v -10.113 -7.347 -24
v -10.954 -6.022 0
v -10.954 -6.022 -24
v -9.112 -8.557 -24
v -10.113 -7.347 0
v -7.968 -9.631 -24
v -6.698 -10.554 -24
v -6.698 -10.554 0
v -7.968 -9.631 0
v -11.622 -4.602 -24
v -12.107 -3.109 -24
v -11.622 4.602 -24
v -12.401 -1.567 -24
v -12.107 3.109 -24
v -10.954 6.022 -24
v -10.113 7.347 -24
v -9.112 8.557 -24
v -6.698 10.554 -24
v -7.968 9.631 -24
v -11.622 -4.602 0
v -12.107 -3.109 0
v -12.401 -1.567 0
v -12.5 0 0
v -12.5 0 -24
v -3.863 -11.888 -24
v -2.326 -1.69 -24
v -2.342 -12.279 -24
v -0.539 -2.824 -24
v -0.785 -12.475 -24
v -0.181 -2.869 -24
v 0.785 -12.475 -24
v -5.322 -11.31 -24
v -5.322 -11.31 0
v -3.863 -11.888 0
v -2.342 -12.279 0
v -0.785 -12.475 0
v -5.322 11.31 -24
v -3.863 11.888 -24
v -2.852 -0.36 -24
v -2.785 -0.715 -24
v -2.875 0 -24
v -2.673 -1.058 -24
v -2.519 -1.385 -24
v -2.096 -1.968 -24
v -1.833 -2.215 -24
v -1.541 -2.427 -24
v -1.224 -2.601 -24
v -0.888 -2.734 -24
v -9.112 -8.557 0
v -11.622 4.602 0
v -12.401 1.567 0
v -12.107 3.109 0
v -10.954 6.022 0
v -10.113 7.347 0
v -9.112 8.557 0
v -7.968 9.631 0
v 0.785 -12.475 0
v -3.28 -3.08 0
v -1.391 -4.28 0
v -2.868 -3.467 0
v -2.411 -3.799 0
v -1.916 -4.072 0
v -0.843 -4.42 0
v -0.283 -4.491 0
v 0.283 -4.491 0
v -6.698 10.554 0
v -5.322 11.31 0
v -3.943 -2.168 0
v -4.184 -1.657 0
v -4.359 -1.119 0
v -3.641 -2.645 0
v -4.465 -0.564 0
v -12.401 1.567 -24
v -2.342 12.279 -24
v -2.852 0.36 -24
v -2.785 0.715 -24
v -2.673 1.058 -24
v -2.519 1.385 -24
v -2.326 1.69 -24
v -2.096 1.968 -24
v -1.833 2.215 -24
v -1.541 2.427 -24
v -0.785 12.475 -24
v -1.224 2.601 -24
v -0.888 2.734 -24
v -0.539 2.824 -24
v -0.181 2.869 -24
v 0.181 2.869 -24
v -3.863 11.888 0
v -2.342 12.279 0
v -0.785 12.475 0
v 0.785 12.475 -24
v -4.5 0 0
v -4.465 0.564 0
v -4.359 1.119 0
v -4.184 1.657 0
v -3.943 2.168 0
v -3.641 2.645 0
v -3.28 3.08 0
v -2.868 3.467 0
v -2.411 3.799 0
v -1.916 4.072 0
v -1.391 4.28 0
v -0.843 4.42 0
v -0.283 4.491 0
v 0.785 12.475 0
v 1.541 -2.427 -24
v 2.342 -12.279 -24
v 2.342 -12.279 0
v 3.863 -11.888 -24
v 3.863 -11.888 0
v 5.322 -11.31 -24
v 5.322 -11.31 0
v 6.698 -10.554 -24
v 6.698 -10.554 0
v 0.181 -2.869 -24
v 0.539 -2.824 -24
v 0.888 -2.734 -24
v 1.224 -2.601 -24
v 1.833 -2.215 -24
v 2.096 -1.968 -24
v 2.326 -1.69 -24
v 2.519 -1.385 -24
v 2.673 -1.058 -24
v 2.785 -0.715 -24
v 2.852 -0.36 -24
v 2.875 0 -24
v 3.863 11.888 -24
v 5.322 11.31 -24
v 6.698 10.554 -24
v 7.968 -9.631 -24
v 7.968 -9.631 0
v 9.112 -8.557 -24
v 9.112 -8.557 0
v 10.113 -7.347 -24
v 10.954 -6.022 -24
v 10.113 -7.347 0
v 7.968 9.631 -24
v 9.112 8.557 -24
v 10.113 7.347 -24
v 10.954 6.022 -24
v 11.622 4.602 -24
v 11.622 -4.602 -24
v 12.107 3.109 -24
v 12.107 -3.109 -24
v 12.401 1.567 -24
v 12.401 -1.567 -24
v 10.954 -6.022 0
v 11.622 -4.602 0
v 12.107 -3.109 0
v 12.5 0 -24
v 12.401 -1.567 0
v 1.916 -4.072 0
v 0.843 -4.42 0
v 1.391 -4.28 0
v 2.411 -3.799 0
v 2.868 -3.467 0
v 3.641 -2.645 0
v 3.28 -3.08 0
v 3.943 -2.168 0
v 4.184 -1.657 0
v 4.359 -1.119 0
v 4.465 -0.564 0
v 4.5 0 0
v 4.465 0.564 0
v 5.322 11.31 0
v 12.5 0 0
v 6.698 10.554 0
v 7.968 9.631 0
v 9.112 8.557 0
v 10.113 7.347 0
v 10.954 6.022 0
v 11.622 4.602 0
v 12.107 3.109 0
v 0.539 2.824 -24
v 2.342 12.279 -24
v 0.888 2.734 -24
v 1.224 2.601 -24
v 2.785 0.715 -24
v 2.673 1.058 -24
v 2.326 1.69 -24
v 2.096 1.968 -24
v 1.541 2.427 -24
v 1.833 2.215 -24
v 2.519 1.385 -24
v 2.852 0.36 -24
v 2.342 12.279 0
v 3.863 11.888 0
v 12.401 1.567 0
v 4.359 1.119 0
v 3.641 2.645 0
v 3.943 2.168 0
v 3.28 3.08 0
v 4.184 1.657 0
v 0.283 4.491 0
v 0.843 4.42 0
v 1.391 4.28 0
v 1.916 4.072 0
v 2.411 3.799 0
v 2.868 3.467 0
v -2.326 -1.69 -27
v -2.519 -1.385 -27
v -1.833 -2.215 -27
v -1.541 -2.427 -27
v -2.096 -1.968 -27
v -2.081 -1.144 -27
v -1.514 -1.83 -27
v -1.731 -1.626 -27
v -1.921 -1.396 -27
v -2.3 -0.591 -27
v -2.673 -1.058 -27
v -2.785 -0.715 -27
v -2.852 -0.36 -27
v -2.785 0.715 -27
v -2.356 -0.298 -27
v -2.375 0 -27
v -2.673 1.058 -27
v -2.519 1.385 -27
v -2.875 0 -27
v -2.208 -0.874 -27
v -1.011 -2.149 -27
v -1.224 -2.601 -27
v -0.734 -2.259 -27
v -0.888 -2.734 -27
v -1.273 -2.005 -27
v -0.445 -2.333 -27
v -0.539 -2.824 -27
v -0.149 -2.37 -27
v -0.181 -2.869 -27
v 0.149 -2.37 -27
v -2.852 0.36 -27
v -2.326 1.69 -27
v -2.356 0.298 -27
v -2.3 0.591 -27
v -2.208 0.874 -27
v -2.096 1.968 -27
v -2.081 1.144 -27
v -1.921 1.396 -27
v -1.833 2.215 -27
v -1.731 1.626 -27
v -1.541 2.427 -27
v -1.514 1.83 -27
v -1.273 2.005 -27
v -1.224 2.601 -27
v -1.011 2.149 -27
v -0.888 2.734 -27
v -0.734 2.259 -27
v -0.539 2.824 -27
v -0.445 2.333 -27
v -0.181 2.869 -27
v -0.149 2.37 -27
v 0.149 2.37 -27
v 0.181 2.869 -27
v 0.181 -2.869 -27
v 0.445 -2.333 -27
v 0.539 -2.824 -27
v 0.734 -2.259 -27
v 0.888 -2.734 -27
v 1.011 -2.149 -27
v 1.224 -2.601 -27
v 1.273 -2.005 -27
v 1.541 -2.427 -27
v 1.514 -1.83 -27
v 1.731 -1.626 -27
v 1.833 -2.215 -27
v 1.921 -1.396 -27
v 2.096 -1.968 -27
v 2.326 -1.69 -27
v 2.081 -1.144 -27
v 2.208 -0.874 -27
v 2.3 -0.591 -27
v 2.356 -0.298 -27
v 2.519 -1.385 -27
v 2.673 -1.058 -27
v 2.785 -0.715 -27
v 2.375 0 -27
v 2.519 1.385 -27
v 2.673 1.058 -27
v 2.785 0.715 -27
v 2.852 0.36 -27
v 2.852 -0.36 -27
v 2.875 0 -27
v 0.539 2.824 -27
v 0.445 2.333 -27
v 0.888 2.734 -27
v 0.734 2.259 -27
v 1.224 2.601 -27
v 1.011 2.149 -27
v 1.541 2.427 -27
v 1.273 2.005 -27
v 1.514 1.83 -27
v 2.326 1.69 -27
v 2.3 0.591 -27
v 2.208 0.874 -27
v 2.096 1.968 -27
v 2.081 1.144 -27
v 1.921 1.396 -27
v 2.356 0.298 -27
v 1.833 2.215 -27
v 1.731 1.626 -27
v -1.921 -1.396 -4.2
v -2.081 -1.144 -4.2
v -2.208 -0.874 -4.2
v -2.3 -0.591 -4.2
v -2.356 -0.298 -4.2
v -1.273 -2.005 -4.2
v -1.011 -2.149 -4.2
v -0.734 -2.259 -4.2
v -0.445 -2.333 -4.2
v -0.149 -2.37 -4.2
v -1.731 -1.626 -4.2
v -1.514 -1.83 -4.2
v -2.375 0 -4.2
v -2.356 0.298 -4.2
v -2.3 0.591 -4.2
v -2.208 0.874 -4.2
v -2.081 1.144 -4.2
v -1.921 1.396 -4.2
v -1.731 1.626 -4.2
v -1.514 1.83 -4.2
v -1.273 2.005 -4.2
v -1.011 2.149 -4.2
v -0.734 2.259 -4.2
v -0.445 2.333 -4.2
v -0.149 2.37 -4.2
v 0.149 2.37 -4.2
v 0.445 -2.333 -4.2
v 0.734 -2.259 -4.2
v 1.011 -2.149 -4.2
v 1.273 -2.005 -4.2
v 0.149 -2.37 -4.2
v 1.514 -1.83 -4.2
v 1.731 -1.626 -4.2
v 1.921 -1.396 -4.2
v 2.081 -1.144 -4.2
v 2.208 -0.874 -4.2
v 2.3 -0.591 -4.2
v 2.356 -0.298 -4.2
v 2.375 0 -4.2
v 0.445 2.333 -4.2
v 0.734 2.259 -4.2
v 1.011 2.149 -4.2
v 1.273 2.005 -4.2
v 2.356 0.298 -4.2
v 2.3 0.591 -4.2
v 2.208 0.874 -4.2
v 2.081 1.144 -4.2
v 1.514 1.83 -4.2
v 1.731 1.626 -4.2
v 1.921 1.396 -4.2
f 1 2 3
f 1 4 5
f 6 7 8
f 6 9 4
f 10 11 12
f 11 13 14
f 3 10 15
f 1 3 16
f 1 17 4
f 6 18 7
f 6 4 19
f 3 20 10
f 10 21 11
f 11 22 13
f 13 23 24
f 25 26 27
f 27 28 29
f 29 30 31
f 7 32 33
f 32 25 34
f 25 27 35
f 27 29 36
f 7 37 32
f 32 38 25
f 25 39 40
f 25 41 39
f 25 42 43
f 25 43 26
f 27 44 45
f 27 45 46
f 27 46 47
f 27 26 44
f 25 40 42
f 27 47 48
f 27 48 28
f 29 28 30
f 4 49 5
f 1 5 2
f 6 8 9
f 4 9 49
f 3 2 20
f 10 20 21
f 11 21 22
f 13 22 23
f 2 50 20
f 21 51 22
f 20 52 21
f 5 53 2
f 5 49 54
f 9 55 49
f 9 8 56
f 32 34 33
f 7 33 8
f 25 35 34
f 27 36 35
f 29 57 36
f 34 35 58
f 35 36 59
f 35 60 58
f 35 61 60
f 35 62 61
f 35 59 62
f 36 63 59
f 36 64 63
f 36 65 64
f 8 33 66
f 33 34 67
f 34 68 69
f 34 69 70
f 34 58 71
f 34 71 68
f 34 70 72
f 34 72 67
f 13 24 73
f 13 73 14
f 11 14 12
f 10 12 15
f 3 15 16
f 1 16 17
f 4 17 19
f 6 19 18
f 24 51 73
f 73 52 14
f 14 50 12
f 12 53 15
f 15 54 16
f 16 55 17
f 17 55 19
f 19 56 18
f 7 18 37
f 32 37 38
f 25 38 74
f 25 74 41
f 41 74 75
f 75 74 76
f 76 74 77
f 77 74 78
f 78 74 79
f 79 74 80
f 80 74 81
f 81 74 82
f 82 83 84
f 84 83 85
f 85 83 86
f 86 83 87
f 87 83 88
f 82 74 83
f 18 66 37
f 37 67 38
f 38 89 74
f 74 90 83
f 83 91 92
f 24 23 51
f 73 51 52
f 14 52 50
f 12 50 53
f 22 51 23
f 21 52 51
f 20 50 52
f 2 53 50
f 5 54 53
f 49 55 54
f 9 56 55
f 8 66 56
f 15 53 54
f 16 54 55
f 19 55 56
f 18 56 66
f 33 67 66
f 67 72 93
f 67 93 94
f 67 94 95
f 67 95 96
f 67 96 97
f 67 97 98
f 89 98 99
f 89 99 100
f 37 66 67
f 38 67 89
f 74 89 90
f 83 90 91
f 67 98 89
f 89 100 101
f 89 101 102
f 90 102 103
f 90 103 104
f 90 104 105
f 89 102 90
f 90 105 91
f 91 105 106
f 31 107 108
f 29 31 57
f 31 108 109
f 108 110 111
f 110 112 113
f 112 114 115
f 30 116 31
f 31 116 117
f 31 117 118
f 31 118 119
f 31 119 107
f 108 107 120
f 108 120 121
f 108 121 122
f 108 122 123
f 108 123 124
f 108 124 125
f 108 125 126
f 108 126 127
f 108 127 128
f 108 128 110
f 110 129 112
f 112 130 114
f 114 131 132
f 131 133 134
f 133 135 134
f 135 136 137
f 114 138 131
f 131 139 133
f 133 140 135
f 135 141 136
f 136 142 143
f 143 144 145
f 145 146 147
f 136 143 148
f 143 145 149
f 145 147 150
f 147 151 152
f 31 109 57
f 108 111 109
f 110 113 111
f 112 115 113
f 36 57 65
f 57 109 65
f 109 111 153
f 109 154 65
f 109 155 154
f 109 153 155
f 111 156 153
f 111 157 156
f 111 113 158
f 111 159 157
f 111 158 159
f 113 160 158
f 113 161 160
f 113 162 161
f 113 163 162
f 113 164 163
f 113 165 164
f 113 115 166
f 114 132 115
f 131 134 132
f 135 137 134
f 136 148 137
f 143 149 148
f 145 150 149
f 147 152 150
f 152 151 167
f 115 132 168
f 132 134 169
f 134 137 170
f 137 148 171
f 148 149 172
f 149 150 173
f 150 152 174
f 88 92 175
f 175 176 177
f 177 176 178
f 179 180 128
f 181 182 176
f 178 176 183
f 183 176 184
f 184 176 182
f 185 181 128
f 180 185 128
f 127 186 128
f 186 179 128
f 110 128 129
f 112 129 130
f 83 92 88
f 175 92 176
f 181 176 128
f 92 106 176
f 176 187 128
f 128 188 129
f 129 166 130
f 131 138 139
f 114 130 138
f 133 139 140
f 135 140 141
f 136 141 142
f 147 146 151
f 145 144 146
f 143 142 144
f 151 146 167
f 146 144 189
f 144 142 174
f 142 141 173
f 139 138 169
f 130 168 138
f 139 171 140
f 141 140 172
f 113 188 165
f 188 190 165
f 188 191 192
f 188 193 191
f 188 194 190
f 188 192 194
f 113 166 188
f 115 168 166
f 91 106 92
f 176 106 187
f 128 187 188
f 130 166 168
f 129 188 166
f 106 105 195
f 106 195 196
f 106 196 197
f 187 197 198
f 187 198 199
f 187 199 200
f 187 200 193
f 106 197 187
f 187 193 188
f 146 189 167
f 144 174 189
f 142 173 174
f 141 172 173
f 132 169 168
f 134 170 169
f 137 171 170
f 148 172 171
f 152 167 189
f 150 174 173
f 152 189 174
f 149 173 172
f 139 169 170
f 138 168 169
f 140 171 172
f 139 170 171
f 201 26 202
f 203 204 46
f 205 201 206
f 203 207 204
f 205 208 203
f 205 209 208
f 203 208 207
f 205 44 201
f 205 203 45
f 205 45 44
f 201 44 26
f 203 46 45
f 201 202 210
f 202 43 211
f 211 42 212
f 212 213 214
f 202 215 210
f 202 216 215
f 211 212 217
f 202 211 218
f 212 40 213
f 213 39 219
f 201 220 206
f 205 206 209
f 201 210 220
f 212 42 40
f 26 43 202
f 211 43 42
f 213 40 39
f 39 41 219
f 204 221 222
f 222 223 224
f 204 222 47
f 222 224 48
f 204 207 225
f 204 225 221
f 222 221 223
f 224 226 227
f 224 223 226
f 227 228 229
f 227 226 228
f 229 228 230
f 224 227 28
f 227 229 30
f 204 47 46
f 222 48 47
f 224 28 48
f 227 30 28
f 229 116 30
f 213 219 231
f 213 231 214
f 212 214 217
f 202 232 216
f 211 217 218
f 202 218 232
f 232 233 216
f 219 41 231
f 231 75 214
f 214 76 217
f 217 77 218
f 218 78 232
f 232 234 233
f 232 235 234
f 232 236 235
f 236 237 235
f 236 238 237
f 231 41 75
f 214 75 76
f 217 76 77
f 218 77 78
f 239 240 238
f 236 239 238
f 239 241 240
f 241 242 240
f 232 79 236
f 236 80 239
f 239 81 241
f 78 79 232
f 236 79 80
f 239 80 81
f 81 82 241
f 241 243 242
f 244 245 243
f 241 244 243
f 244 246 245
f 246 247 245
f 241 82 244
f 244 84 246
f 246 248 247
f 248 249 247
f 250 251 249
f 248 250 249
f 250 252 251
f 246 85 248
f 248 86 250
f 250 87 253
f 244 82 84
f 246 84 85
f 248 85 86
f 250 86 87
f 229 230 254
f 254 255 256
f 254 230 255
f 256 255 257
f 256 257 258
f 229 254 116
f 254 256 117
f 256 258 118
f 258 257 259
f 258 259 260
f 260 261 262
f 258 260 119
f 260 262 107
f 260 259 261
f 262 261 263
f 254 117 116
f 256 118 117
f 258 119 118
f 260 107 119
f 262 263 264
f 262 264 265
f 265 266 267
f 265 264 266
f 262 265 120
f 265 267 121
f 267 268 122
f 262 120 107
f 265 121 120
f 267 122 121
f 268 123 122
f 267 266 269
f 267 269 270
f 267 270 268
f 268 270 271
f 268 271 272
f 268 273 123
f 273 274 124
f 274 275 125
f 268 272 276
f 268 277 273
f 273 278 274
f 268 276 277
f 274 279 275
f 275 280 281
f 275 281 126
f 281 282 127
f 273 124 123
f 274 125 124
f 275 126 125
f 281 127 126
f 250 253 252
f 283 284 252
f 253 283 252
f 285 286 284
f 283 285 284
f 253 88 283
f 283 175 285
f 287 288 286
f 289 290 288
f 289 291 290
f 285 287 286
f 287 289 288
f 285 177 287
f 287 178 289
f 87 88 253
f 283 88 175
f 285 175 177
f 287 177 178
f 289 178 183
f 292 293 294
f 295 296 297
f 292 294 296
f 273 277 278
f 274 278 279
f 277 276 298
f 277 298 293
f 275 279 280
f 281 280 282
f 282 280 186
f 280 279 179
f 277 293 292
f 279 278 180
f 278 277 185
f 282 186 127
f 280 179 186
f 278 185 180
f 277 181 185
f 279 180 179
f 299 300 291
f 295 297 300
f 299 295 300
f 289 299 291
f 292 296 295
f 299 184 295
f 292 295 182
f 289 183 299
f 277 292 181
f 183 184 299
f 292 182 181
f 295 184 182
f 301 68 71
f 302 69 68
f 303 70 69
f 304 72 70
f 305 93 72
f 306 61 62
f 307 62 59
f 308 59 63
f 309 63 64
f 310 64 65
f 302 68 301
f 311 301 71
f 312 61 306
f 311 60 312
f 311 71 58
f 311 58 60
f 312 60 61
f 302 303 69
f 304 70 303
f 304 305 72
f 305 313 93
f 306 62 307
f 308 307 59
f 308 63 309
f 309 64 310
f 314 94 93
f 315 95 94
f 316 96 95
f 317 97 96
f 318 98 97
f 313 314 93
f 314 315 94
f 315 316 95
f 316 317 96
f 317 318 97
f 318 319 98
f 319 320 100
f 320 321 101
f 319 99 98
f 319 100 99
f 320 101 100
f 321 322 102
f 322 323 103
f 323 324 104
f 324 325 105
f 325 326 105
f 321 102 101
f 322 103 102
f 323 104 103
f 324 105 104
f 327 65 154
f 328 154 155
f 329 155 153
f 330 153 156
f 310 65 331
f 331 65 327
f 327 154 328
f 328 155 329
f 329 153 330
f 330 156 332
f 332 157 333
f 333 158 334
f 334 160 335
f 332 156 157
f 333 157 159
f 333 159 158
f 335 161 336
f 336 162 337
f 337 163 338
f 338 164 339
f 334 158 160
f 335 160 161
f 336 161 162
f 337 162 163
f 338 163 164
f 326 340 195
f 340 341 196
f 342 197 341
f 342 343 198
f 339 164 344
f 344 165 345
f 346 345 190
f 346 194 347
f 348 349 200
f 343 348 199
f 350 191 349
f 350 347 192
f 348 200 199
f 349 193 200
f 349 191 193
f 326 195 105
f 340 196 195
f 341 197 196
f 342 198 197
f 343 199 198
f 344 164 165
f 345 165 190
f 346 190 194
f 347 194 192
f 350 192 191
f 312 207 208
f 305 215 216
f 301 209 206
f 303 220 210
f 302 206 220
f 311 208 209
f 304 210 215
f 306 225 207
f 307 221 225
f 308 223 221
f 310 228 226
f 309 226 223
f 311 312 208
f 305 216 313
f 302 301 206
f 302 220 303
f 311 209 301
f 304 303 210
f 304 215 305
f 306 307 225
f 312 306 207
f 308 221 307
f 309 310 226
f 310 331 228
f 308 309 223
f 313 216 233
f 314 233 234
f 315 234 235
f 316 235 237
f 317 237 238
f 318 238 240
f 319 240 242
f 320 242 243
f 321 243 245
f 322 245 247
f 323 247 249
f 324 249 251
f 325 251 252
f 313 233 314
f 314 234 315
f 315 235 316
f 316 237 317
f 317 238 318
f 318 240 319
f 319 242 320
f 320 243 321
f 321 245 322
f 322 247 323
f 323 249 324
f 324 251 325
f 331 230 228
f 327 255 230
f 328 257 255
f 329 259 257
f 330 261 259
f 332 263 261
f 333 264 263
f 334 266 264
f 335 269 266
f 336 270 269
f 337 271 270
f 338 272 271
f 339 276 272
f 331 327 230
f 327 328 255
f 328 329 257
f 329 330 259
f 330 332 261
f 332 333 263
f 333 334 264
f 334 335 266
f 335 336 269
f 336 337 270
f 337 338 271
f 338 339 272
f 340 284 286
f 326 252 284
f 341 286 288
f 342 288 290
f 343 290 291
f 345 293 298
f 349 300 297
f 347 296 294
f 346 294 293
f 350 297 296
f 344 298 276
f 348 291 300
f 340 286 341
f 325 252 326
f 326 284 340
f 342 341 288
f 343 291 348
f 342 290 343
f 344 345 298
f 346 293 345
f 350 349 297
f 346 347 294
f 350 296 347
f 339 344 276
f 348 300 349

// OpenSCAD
$fn = 50;


difference() {
	union() {
		translate(v = [0, 0, -24.0000000000]) {
			cylinder(h = 24, r = 12.5000000000);
		}
		#translate(v = [0, 0, -27.0000000000]) {
			cylinder(h = 27, r = 2.8750000000);
		}
	}
	union() {
		translate(v = [0, 0, 0]) {
			rotate(a = [0, 0, 0]) {
				difference() {
					union() {
						translate(v = [0, 0, -27.0000000000]) {
							cylinder(h = 27, r = 2.2500000000);
						}
						translate(v = [0, 0, -4.2000000000]) {
							cylinder(h = 4.2000000000, r1 = 2.3750000000, r2 = 4.5000000000);
						}
						translate(v = [0, 0, -27.0000000000]) {
							cylinder(h = 27, r = 2.3750000000);
						}
						translate(v = [0, 0, -27.0000000000]) {
							cylinder(h = 27, r = 2.2500000000);
						}
					}
					union();
				}
			}
		}
	}
}
